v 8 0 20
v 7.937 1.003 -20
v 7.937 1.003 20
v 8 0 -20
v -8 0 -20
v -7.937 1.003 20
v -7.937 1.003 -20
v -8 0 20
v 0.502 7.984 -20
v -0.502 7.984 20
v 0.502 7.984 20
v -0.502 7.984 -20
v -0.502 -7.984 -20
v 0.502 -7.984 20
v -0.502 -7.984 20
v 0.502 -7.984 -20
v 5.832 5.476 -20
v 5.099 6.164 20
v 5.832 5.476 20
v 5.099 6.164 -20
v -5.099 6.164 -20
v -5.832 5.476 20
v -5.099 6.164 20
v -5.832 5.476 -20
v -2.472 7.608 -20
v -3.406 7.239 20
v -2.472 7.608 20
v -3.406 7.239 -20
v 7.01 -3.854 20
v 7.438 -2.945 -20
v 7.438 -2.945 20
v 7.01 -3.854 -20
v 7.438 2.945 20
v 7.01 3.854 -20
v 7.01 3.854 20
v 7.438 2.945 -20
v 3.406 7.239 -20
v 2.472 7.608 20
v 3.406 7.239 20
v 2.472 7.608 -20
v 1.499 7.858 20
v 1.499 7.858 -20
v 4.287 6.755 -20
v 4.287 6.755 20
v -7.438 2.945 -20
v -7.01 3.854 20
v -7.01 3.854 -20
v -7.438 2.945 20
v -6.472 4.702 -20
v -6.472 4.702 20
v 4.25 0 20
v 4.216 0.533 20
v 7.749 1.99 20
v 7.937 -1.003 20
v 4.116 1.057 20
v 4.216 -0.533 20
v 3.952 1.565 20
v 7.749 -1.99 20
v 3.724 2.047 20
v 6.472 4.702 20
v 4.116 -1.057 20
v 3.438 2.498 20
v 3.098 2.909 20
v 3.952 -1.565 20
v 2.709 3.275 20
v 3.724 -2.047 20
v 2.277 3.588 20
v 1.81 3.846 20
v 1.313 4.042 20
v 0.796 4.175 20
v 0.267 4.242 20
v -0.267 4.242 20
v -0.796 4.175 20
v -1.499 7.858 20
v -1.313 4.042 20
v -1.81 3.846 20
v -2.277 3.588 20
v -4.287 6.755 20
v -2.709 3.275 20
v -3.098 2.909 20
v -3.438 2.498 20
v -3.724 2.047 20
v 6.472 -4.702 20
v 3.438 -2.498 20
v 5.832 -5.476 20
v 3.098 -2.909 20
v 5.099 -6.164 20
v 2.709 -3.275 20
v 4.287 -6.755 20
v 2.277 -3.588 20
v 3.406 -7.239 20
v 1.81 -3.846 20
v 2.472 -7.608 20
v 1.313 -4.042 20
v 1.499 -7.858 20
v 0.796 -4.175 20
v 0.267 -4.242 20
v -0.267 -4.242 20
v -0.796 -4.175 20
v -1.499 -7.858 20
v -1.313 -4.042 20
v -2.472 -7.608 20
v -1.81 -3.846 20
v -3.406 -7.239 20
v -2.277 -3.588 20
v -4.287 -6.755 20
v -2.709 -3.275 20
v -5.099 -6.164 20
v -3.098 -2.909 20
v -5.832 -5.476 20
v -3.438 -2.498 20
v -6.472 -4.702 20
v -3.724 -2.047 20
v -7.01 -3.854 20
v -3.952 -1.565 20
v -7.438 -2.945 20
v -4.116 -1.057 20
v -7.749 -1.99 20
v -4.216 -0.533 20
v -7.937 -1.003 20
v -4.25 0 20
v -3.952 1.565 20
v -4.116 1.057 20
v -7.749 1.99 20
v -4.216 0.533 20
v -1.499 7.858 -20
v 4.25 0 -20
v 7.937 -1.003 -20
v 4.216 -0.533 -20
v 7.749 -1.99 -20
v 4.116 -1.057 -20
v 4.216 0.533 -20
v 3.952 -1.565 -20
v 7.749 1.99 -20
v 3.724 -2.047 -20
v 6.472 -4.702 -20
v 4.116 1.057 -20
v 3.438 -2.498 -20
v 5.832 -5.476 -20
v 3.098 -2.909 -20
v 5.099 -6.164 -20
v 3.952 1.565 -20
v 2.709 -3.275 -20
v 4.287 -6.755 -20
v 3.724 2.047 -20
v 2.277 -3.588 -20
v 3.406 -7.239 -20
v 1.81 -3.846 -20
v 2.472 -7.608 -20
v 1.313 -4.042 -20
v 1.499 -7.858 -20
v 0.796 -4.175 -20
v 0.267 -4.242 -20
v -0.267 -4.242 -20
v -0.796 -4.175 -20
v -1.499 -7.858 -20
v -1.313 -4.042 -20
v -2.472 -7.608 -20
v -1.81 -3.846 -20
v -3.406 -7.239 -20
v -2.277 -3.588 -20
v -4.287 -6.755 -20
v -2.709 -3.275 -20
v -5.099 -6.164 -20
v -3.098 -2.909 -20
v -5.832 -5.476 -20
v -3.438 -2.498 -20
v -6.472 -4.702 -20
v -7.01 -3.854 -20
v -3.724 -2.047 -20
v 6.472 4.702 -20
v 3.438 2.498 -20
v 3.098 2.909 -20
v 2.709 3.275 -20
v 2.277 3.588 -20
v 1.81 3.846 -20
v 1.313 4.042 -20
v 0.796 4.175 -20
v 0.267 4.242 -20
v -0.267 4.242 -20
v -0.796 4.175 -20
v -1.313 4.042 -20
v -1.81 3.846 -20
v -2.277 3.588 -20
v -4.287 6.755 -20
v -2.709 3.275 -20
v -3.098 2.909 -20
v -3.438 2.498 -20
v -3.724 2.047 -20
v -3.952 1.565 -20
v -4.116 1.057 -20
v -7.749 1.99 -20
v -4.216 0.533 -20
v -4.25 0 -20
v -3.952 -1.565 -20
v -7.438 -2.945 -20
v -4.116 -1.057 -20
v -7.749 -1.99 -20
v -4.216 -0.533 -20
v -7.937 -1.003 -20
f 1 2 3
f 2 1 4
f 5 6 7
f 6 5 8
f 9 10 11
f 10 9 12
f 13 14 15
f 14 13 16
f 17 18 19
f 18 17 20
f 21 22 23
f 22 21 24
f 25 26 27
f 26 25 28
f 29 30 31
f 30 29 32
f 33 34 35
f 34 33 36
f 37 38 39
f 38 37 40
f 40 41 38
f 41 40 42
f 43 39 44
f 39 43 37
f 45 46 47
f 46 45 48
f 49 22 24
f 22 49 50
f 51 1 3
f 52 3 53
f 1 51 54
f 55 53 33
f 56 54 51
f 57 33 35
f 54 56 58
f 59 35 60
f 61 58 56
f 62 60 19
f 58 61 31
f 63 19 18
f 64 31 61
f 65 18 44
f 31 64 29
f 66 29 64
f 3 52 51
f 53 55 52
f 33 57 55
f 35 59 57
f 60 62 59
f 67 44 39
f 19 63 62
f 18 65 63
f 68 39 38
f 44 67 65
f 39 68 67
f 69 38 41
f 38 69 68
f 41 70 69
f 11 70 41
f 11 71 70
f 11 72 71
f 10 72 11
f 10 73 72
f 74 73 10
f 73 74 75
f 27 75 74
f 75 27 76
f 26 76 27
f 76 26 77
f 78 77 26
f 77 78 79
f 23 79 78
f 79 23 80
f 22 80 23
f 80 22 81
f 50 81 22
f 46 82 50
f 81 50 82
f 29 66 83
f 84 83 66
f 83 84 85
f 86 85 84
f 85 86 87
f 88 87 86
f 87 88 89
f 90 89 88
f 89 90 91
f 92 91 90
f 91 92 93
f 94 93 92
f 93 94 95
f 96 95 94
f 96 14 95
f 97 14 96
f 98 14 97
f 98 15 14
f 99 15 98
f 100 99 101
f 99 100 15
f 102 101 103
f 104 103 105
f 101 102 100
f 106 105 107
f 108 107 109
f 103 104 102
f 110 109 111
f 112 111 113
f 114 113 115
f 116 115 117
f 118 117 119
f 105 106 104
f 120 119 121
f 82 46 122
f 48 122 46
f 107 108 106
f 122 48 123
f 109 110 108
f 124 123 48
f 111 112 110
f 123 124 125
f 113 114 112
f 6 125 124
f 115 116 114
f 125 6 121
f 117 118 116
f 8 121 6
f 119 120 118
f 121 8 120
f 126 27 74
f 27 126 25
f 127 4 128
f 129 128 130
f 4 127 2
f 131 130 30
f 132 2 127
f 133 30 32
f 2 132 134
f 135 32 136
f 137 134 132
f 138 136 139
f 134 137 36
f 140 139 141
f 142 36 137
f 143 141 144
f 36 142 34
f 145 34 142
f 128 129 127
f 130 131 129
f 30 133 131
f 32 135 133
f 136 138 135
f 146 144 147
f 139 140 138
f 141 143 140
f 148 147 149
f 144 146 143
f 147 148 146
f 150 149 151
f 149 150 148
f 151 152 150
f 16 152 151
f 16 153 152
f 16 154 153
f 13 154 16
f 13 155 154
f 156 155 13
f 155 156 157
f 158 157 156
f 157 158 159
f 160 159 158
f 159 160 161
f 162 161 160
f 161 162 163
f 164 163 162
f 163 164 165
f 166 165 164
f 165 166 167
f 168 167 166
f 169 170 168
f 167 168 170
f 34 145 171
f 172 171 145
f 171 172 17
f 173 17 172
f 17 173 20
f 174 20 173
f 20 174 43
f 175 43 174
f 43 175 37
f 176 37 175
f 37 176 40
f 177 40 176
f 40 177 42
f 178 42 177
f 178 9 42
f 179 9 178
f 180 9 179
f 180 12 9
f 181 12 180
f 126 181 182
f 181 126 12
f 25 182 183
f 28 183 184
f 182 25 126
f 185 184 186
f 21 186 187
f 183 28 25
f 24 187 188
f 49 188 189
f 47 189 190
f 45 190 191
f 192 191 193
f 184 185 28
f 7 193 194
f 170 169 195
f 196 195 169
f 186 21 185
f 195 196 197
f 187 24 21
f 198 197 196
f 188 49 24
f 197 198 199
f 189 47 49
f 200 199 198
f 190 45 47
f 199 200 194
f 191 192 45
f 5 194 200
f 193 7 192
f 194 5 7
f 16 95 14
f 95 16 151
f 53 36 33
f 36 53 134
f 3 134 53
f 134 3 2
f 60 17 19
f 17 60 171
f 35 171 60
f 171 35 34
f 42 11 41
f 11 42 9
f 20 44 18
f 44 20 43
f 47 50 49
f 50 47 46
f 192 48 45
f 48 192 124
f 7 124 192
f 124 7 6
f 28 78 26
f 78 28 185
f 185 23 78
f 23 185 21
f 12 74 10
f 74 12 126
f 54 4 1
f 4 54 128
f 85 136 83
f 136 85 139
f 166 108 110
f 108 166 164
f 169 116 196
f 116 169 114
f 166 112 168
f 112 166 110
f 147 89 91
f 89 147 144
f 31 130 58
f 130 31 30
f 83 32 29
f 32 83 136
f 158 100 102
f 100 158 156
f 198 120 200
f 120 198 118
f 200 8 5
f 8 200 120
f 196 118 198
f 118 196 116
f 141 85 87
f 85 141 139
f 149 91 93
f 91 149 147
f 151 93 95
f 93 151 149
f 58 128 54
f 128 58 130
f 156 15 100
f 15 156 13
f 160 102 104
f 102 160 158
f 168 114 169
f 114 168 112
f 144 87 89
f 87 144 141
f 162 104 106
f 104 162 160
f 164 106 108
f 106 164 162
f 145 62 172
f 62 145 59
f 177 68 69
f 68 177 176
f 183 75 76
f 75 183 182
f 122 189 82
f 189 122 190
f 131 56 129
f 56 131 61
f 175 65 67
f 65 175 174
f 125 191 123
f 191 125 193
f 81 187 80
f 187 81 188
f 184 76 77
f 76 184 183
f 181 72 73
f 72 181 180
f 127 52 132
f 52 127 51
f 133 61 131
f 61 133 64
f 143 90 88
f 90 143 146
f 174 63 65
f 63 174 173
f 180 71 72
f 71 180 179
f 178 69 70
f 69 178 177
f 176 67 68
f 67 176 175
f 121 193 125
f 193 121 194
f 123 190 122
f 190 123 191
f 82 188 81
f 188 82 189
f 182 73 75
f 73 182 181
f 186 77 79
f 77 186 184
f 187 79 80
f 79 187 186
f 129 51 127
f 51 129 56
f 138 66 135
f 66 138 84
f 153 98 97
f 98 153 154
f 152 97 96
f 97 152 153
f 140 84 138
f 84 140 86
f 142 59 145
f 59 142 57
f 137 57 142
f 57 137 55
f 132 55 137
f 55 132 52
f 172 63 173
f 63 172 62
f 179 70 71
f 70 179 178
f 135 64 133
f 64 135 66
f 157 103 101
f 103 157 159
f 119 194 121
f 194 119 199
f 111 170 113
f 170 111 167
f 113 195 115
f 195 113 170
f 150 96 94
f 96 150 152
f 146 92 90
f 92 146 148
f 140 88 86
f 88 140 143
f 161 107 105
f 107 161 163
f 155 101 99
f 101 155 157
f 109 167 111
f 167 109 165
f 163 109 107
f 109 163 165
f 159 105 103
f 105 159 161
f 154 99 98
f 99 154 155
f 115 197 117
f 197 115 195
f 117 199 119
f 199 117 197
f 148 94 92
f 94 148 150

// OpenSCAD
$fn = 50;


difference() {
	union() {
		translate(v = [0, 0, -20.0000000000]) {
			cylinder(h = 40, r = 8.0000000000);
		}
	}
	union() {
		translate(v = [0, 0, -100.0000000000]) {
			cylinder(h = 200, r = 4.2500000000);
		}
	}
}
